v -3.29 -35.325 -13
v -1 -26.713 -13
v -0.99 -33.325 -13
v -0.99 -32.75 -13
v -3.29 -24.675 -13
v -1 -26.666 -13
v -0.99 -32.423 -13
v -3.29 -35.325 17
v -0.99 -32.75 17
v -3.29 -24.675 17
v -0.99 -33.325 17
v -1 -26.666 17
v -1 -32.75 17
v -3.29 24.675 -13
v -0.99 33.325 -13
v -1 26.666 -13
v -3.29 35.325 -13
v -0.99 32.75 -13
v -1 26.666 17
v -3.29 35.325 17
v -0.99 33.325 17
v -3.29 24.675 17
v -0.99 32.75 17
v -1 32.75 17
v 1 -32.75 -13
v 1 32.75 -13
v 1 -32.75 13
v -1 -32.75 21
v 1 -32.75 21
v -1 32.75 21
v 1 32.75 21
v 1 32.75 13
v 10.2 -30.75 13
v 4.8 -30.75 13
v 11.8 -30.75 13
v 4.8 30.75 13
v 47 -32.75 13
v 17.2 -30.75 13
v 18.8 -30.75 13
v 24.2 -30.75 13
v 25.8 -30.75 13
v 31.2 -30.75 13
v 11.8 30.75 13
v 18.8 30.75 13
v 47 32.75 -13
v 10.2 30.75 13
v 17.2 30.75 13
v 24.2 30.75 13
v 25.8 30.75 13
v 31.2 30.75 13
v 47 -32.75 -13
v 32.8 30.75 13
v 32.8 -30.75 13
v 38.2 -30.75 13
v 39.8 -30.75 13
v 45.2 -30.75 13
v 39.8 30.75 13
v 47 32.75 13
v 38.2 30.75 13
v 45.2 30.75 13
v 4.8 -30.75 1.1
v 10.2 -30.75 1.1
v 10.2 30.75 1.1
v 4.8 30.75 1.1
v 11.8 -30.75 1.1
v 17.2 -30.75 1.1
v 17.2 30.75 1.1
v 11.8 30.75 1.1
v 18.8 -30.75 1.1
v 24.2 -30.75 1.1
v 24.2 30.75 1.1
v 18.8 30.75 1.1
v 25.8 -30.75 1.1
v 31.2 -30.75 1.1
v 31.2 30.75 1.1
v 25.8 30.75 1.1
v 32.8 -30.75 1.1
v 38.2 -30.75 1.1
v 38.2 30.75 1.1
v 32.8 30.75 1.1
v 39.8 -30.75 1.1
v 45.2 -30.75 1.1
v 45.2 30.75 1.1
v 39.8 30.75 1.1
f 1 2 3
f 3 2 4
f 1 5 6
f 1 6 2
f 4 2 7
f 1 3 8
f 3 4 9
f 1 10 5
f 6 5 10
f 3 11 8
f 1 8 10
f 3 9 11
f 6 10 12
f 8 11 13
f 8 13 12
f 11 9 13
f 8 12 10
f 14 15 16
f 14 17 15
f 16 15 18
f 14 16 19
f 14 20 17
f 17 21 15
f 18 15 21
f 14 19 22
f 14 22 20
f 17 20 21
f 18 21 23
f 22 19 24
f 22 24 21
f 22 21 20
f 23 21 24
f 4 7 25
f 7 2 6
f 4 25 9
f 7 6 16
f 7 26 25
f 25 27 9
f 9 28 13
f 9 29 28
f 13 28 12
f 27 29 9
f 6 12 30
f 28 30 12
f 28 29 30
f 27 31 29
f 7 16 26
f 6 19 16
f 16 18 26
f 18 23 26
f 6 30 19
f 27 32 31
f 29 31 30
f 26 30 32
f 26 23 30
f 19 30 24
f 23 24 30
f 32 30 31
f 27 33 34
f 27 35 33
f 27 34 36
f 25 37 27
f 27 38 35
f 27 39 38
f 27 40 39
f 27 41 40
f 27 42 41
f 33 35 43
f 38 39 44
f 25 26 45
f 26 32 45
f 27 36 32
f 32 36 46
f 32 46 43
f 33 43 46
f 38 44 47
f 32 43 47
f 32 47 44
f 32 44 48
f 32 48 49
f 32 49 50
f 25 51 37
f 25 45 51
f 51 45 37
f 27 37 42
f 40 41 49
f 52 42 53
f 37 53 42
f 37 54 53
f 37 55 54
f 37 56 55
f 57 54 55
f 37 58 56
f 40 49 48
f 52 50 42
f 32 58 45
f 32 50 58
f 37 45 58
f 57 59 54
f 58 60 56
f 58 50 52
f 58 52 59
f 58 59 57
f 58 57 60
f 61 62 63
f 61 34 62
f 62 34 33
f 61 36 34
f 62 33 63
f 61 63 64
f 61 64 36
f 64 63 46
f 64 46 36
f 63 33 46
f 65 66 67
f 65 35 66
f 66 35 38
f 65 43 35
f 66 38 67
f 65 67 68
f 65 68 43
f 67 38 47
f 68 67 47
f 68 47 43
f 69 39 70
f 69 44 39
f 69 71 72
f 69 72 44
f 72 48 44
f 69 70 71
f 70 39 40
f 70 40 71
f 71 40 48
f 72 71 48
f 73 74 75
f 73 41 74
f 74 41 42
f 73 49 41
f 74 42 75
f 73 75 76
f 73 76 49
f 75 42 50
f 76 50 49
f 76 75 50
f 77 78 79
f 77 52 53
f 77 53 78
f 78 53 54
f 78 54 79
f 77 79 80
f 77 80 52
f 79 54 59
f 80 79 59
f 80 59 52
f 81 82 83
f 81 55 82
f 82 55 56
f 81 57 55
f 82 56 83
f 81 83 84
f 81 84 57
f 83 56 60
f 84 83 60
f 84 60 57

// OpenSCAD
// file: ../../sorgenti/libreria.scad
// ============================================================
// libreria.scad — forme di base riusate da tutti i pezzi
// ============================================================
include <parametri.scad>

$fn = RISOLUZIONE;

// Prisma a sezione rettangolare con angoli arrotondati.
module piastra(x, y, h, r) {
    linear_extrude(height = h)
        offset(r = r) square([x - 2*r, y - 2*r], center = true);
}

// Scatola piena con angoli verticali arrotondati (rv) e bordo
// superiore raccordato (rt). Il raccordo è approssimato a gradini
// uniti con hull(): resta liscio e si stampa senza supporti.
module scatola_arrotondata(x, y, z, rv, rt, passi = 12) {
    union() {
        piastra(x, y, z - rt, rv);
        for (i = [0 : passi - 1]) {
            a0 = 90 * i / passi;
            a1 = 90 * (i + 1) / passi;
            k0 = rt * (1 - cos(a0));  k1 = rt * (1 - cos(a1));
            h0 = rt * sin(a0);        h1 = rt * sin(a1);
            hull() {
                translate([0, 0, z - rt + h0])
                    piastra(x - 2*k0, y - 2*k0, 0.02, max(rv - k0, 0.6));
                translate([0, 0, z - rt + h1])
                    piastra(x - 2*k1, y - 2*k1, 0.02, max(rv - k1, 0.6));
            }
        }
    }
}

// Foro di passaggio per vite con svasatura della testa (testa in basso,
// si avvita dal basso verso l'alto).
module foro_svasato(h = 10, d = VITE_FORO, testa_d = VITE_TESTA_D, testa_h = 1.6) {
    translate([0, 0, -0.1]) cylinder(h = h + 0.2, d = d);
    translate([0, 0, -0.1]) cylinder(h = testa_h + 0.1, d1 = testa_d, d2 = d);
}

// Pilastrino con sede per inserto a caldo M2,5 (si inserisce dal basso).
module boss_inserto(h = 12, d = BOSS_D) {
    difference() {
        cylinder(h = h, d = d);
        translate([0, 0, -0.1]) cylinder(h = INSERTO_H + 0.1, d = INSERTO_D);
        // scarico sopra l'inserto, per la punta della vite
        translate([0, 0, INSERTO_H]) cylinder(h = h, d = VITE_D + 0.4);
    }
}

// Griglia di fori a nido d'ape dentro un cerchio di diametro d_area.
module griglia_tonda(d_area, spessore, d_foro = ALT_GRIGLIA_D, passo = 3.2) {
    n = ceil(d_area / passo) + 2;
    for (i = [-n : n], j = [-n : n]) {
        x = i * passo + (abs(j) % 2) * passo / 2;
        y = j * passo * 0.866;
        if (sqrt(x*x + y*y) <= (d_area - d_foro) / 2)
            translate([x, y, -0.1]) cylinder(h = spessore + 0.2, d = d_foro);
    }
}

// Fessura allungata (slot) con estremi arrotondati, asse X.
module fessura(lung, larg, h) {
    hull() {
        translate([-(lung - larg)/2, 0, 0]) cylinder(h = h, d = larg);
        translate([ (lung - larg)/2, 0, 0]) cylinder(h = h, d = larg);
    }
}

// Scritta in rilievo (per i provini e le etichette).
module scritta(t, dim = 6, alt = 0.6) {
    linear_extrude(height = alt)
        text(t, size = dim, halign = "center", valign = "center",
             font = "Helvetica:style=Bold");
}

// Freccia piena, punta verso +X, usata per le icone dei tasti.
module freccia(lung = 16, larg = 14, alt = 0.8) {
    gambo = larg / 5;          // mezza larghezza del gambo
    testa = lung * 0.45;       // lunghezza della punta
    linear_extrude(height = alt)
        polygon([[-lung/2, -gambo], [lung/2 - testa, -gambo],
                 [lung/2 - testa, -larg/2], [lung/2, 0],
                 [lung/2 - testa, larg/2], [lung/2 - testa, gambo],
                 [-lung/2, gambo]]);
}

// Icona "volume": tre barrette crescenti, asse X.
module icona_volume(n = 3, alt = 0.8, passo = 3.2, base = 2.0, cresc = 1.6) {
    for (i = [0 : n - 1])
        translate([i * passo, 0, 0])
            linear_extrude(height = alt)
                square([1.8, base + i * cresc], center = true);
}

// Cava a sezione rettangolare arrotondata, asse di estrusione Y.
// Utile per finestre e fessure nelle pareti verticali.
module cava_y(x, z, prof, r = 1.5) {
    rotate([90, 0, 0])
        linear_extrude(height = prof, center = true)
            offset(r = r) square([x - 2*r, z - 2*r], center = true);
}

// Pilastrino che parte dal piano del fondo e ospita un inserto a caldo
// (inserito dal basso). La punta conica in alto lo rende stampabile
// anche a scatola capovolta.
module boss_fondo(h = 12) {
    union() {
        difference() {
            cylinder(h = h, d = BOSS_D);
            translate([0, 0, -0.1]) cylinder(h = INSERTO_H + 0.1, d = INSERTO_D);
            translate([0, 0, INSERTO_H]) cylinder(h = h, d = VITE_D + 0.6);
        }
        translate([0, 0, h]) cylinder(h = BOSS_D/2, d1 = BOSS_D, d2 = 0.4);
    }
}

// Pilastrino appeso al soffitto (coperchio): l'inserto entra dal basso.
module boss_soffitto(h = 7) {
    difference() {
        translate([0, 0, -h]) cylinder(h = h, d = BOSS_D);
        translate([0, 0, -h - 0.1]) cylinder(h = INSERTO_H + 0.1, d = INSERTO_D);
    }
}

// Maschio della coda di rondine: si infila nella cava della fiancata.
// Si stampa in verticale insieme al raccoglitore, quindi senza supporti.
module coda_maschio(altezza) {
    gioco = 0.35;
    rotate([-90, 0, 0])
        linear_extrude(height = altezza)
            polygon([[0, -(CODA_FONDO - gioco)/2], [0, (CODA_FONDO - gioco)/2],
                     [CODA_PROF - 0.3, (CODA_BOCCA - gioco)/2],
                     [CODA_PROF - 0.3, -(CODA_BOCCA - gioco)/2]]);
}
// file: raccoglitore.scad
// ============================================================
// raccoglitore.scad — il corpo comune dei due raccoglitori
// ------------------------------------------------------------
// Si infila dall'alto nelle due code di rondine della fiancata e
// sta su da solo: niente viti, e si sfila per portare in giro il
// box senza la collezione.
//
// Lo usano raccoglitore-carte.scad e raccoglitore-dischi.scad,
// che cambiano solo passo e profondità delle fessure.
//
// STAMPA: appoggiato sulla schiena (la faccia delle code sul
// piano), fessure verso l'alto. Niente supporti.
// ============================================================
include <../../sorgenti/libreria.scad>

// raccoglitore(n, passo, fessura, largo, alto_fessura, sporge)
//   n            quante cose ci stanno
//   passo        distanza fra una fessura e l'altra
//   fessura      larghezza della singola fessura
//   largo        lunghezza utile della fessura (lato Y)
//   alto_fessura quanto è profonda la tasca che trattiene
//   sporge       quanto sporge dal box
module raccoglitore(n, passo, fessura, largo, alto_fessura, sporge) {
    sp = 2.0;                       // pareti
    corpo_y = largo + 2 * sp;
    corpo_x = sporge;
    corpo_z = alto_fessura + sp;
    schiena_z = corpo_z + 8;        // appena più alta della vasca: le code
                                    // prendono su tutta l'altezza e il
                                    // raccoglitore resta un blocchetto

    difference() {
        union() {
            // schiena, appoggiata alla fiancata
            translate([0, 0, schiena_z/2 - corpo_z/2])
                cube([sp, corpo_y, schiena_z], center = true);
            // vasca
            translate([corpo_x/2 + sp/2, 0, 0])
                cube([corpo_x, corpo_y, corpo_z], center = true);
            // le due code
            for (sy = [-1, 1])
                translate([-sp/2 + 0.01, sy * CODA_INTERASSE/2, -corpo_z/2])
                    coda_maschio_verticale(schiena_z - 4);
        }
        // le fessure
        for (i = [0 : n - 1]) {
            x = sp + passo * (i + 0.5) + (corpo_x - n * passo) / 2;
            translate([x, 0, sp + corpo_z/2 - sp/2 + 0.1])
                cube([fessura, largo, corpo_z], center = true);
        }
    }
}

// La coda va estrusa lungo Z (si stampa in piedi), non lungo Y.
module coda_maschio_verticale(altezza) {
    gioco = 0.35;
    linear_extrude(height = altezza)
        polygon([[0, -(CODA_BOCCA - gioco)/2], [0, (CODA_BOCCA - gioco)/2],
                 [-(CODA_PROF - 0.3), (CODA_FONDO - gioco)/2],
                 [-(CODA_PROF - 0.3), -(CODA_FONDO - gioco)/2]]);
}
// main file
// Raccoglitore per sei dischi della musica (Ø60).
include <raccoglitore.scad>

raccoglitore_dischi();

module raccoglitore_dischi() {
    raccoglitore(n = RACC_DISCHI_N, passo = RACC_DISCHI_PASSO, fessura = VIN_H + 1.4,
             largo = VIN_D + 1.5, alto_fessura = 24,
             sporge = RACC_DISCHI_N * RACC_DISCHI_PASSO + 4);
}
